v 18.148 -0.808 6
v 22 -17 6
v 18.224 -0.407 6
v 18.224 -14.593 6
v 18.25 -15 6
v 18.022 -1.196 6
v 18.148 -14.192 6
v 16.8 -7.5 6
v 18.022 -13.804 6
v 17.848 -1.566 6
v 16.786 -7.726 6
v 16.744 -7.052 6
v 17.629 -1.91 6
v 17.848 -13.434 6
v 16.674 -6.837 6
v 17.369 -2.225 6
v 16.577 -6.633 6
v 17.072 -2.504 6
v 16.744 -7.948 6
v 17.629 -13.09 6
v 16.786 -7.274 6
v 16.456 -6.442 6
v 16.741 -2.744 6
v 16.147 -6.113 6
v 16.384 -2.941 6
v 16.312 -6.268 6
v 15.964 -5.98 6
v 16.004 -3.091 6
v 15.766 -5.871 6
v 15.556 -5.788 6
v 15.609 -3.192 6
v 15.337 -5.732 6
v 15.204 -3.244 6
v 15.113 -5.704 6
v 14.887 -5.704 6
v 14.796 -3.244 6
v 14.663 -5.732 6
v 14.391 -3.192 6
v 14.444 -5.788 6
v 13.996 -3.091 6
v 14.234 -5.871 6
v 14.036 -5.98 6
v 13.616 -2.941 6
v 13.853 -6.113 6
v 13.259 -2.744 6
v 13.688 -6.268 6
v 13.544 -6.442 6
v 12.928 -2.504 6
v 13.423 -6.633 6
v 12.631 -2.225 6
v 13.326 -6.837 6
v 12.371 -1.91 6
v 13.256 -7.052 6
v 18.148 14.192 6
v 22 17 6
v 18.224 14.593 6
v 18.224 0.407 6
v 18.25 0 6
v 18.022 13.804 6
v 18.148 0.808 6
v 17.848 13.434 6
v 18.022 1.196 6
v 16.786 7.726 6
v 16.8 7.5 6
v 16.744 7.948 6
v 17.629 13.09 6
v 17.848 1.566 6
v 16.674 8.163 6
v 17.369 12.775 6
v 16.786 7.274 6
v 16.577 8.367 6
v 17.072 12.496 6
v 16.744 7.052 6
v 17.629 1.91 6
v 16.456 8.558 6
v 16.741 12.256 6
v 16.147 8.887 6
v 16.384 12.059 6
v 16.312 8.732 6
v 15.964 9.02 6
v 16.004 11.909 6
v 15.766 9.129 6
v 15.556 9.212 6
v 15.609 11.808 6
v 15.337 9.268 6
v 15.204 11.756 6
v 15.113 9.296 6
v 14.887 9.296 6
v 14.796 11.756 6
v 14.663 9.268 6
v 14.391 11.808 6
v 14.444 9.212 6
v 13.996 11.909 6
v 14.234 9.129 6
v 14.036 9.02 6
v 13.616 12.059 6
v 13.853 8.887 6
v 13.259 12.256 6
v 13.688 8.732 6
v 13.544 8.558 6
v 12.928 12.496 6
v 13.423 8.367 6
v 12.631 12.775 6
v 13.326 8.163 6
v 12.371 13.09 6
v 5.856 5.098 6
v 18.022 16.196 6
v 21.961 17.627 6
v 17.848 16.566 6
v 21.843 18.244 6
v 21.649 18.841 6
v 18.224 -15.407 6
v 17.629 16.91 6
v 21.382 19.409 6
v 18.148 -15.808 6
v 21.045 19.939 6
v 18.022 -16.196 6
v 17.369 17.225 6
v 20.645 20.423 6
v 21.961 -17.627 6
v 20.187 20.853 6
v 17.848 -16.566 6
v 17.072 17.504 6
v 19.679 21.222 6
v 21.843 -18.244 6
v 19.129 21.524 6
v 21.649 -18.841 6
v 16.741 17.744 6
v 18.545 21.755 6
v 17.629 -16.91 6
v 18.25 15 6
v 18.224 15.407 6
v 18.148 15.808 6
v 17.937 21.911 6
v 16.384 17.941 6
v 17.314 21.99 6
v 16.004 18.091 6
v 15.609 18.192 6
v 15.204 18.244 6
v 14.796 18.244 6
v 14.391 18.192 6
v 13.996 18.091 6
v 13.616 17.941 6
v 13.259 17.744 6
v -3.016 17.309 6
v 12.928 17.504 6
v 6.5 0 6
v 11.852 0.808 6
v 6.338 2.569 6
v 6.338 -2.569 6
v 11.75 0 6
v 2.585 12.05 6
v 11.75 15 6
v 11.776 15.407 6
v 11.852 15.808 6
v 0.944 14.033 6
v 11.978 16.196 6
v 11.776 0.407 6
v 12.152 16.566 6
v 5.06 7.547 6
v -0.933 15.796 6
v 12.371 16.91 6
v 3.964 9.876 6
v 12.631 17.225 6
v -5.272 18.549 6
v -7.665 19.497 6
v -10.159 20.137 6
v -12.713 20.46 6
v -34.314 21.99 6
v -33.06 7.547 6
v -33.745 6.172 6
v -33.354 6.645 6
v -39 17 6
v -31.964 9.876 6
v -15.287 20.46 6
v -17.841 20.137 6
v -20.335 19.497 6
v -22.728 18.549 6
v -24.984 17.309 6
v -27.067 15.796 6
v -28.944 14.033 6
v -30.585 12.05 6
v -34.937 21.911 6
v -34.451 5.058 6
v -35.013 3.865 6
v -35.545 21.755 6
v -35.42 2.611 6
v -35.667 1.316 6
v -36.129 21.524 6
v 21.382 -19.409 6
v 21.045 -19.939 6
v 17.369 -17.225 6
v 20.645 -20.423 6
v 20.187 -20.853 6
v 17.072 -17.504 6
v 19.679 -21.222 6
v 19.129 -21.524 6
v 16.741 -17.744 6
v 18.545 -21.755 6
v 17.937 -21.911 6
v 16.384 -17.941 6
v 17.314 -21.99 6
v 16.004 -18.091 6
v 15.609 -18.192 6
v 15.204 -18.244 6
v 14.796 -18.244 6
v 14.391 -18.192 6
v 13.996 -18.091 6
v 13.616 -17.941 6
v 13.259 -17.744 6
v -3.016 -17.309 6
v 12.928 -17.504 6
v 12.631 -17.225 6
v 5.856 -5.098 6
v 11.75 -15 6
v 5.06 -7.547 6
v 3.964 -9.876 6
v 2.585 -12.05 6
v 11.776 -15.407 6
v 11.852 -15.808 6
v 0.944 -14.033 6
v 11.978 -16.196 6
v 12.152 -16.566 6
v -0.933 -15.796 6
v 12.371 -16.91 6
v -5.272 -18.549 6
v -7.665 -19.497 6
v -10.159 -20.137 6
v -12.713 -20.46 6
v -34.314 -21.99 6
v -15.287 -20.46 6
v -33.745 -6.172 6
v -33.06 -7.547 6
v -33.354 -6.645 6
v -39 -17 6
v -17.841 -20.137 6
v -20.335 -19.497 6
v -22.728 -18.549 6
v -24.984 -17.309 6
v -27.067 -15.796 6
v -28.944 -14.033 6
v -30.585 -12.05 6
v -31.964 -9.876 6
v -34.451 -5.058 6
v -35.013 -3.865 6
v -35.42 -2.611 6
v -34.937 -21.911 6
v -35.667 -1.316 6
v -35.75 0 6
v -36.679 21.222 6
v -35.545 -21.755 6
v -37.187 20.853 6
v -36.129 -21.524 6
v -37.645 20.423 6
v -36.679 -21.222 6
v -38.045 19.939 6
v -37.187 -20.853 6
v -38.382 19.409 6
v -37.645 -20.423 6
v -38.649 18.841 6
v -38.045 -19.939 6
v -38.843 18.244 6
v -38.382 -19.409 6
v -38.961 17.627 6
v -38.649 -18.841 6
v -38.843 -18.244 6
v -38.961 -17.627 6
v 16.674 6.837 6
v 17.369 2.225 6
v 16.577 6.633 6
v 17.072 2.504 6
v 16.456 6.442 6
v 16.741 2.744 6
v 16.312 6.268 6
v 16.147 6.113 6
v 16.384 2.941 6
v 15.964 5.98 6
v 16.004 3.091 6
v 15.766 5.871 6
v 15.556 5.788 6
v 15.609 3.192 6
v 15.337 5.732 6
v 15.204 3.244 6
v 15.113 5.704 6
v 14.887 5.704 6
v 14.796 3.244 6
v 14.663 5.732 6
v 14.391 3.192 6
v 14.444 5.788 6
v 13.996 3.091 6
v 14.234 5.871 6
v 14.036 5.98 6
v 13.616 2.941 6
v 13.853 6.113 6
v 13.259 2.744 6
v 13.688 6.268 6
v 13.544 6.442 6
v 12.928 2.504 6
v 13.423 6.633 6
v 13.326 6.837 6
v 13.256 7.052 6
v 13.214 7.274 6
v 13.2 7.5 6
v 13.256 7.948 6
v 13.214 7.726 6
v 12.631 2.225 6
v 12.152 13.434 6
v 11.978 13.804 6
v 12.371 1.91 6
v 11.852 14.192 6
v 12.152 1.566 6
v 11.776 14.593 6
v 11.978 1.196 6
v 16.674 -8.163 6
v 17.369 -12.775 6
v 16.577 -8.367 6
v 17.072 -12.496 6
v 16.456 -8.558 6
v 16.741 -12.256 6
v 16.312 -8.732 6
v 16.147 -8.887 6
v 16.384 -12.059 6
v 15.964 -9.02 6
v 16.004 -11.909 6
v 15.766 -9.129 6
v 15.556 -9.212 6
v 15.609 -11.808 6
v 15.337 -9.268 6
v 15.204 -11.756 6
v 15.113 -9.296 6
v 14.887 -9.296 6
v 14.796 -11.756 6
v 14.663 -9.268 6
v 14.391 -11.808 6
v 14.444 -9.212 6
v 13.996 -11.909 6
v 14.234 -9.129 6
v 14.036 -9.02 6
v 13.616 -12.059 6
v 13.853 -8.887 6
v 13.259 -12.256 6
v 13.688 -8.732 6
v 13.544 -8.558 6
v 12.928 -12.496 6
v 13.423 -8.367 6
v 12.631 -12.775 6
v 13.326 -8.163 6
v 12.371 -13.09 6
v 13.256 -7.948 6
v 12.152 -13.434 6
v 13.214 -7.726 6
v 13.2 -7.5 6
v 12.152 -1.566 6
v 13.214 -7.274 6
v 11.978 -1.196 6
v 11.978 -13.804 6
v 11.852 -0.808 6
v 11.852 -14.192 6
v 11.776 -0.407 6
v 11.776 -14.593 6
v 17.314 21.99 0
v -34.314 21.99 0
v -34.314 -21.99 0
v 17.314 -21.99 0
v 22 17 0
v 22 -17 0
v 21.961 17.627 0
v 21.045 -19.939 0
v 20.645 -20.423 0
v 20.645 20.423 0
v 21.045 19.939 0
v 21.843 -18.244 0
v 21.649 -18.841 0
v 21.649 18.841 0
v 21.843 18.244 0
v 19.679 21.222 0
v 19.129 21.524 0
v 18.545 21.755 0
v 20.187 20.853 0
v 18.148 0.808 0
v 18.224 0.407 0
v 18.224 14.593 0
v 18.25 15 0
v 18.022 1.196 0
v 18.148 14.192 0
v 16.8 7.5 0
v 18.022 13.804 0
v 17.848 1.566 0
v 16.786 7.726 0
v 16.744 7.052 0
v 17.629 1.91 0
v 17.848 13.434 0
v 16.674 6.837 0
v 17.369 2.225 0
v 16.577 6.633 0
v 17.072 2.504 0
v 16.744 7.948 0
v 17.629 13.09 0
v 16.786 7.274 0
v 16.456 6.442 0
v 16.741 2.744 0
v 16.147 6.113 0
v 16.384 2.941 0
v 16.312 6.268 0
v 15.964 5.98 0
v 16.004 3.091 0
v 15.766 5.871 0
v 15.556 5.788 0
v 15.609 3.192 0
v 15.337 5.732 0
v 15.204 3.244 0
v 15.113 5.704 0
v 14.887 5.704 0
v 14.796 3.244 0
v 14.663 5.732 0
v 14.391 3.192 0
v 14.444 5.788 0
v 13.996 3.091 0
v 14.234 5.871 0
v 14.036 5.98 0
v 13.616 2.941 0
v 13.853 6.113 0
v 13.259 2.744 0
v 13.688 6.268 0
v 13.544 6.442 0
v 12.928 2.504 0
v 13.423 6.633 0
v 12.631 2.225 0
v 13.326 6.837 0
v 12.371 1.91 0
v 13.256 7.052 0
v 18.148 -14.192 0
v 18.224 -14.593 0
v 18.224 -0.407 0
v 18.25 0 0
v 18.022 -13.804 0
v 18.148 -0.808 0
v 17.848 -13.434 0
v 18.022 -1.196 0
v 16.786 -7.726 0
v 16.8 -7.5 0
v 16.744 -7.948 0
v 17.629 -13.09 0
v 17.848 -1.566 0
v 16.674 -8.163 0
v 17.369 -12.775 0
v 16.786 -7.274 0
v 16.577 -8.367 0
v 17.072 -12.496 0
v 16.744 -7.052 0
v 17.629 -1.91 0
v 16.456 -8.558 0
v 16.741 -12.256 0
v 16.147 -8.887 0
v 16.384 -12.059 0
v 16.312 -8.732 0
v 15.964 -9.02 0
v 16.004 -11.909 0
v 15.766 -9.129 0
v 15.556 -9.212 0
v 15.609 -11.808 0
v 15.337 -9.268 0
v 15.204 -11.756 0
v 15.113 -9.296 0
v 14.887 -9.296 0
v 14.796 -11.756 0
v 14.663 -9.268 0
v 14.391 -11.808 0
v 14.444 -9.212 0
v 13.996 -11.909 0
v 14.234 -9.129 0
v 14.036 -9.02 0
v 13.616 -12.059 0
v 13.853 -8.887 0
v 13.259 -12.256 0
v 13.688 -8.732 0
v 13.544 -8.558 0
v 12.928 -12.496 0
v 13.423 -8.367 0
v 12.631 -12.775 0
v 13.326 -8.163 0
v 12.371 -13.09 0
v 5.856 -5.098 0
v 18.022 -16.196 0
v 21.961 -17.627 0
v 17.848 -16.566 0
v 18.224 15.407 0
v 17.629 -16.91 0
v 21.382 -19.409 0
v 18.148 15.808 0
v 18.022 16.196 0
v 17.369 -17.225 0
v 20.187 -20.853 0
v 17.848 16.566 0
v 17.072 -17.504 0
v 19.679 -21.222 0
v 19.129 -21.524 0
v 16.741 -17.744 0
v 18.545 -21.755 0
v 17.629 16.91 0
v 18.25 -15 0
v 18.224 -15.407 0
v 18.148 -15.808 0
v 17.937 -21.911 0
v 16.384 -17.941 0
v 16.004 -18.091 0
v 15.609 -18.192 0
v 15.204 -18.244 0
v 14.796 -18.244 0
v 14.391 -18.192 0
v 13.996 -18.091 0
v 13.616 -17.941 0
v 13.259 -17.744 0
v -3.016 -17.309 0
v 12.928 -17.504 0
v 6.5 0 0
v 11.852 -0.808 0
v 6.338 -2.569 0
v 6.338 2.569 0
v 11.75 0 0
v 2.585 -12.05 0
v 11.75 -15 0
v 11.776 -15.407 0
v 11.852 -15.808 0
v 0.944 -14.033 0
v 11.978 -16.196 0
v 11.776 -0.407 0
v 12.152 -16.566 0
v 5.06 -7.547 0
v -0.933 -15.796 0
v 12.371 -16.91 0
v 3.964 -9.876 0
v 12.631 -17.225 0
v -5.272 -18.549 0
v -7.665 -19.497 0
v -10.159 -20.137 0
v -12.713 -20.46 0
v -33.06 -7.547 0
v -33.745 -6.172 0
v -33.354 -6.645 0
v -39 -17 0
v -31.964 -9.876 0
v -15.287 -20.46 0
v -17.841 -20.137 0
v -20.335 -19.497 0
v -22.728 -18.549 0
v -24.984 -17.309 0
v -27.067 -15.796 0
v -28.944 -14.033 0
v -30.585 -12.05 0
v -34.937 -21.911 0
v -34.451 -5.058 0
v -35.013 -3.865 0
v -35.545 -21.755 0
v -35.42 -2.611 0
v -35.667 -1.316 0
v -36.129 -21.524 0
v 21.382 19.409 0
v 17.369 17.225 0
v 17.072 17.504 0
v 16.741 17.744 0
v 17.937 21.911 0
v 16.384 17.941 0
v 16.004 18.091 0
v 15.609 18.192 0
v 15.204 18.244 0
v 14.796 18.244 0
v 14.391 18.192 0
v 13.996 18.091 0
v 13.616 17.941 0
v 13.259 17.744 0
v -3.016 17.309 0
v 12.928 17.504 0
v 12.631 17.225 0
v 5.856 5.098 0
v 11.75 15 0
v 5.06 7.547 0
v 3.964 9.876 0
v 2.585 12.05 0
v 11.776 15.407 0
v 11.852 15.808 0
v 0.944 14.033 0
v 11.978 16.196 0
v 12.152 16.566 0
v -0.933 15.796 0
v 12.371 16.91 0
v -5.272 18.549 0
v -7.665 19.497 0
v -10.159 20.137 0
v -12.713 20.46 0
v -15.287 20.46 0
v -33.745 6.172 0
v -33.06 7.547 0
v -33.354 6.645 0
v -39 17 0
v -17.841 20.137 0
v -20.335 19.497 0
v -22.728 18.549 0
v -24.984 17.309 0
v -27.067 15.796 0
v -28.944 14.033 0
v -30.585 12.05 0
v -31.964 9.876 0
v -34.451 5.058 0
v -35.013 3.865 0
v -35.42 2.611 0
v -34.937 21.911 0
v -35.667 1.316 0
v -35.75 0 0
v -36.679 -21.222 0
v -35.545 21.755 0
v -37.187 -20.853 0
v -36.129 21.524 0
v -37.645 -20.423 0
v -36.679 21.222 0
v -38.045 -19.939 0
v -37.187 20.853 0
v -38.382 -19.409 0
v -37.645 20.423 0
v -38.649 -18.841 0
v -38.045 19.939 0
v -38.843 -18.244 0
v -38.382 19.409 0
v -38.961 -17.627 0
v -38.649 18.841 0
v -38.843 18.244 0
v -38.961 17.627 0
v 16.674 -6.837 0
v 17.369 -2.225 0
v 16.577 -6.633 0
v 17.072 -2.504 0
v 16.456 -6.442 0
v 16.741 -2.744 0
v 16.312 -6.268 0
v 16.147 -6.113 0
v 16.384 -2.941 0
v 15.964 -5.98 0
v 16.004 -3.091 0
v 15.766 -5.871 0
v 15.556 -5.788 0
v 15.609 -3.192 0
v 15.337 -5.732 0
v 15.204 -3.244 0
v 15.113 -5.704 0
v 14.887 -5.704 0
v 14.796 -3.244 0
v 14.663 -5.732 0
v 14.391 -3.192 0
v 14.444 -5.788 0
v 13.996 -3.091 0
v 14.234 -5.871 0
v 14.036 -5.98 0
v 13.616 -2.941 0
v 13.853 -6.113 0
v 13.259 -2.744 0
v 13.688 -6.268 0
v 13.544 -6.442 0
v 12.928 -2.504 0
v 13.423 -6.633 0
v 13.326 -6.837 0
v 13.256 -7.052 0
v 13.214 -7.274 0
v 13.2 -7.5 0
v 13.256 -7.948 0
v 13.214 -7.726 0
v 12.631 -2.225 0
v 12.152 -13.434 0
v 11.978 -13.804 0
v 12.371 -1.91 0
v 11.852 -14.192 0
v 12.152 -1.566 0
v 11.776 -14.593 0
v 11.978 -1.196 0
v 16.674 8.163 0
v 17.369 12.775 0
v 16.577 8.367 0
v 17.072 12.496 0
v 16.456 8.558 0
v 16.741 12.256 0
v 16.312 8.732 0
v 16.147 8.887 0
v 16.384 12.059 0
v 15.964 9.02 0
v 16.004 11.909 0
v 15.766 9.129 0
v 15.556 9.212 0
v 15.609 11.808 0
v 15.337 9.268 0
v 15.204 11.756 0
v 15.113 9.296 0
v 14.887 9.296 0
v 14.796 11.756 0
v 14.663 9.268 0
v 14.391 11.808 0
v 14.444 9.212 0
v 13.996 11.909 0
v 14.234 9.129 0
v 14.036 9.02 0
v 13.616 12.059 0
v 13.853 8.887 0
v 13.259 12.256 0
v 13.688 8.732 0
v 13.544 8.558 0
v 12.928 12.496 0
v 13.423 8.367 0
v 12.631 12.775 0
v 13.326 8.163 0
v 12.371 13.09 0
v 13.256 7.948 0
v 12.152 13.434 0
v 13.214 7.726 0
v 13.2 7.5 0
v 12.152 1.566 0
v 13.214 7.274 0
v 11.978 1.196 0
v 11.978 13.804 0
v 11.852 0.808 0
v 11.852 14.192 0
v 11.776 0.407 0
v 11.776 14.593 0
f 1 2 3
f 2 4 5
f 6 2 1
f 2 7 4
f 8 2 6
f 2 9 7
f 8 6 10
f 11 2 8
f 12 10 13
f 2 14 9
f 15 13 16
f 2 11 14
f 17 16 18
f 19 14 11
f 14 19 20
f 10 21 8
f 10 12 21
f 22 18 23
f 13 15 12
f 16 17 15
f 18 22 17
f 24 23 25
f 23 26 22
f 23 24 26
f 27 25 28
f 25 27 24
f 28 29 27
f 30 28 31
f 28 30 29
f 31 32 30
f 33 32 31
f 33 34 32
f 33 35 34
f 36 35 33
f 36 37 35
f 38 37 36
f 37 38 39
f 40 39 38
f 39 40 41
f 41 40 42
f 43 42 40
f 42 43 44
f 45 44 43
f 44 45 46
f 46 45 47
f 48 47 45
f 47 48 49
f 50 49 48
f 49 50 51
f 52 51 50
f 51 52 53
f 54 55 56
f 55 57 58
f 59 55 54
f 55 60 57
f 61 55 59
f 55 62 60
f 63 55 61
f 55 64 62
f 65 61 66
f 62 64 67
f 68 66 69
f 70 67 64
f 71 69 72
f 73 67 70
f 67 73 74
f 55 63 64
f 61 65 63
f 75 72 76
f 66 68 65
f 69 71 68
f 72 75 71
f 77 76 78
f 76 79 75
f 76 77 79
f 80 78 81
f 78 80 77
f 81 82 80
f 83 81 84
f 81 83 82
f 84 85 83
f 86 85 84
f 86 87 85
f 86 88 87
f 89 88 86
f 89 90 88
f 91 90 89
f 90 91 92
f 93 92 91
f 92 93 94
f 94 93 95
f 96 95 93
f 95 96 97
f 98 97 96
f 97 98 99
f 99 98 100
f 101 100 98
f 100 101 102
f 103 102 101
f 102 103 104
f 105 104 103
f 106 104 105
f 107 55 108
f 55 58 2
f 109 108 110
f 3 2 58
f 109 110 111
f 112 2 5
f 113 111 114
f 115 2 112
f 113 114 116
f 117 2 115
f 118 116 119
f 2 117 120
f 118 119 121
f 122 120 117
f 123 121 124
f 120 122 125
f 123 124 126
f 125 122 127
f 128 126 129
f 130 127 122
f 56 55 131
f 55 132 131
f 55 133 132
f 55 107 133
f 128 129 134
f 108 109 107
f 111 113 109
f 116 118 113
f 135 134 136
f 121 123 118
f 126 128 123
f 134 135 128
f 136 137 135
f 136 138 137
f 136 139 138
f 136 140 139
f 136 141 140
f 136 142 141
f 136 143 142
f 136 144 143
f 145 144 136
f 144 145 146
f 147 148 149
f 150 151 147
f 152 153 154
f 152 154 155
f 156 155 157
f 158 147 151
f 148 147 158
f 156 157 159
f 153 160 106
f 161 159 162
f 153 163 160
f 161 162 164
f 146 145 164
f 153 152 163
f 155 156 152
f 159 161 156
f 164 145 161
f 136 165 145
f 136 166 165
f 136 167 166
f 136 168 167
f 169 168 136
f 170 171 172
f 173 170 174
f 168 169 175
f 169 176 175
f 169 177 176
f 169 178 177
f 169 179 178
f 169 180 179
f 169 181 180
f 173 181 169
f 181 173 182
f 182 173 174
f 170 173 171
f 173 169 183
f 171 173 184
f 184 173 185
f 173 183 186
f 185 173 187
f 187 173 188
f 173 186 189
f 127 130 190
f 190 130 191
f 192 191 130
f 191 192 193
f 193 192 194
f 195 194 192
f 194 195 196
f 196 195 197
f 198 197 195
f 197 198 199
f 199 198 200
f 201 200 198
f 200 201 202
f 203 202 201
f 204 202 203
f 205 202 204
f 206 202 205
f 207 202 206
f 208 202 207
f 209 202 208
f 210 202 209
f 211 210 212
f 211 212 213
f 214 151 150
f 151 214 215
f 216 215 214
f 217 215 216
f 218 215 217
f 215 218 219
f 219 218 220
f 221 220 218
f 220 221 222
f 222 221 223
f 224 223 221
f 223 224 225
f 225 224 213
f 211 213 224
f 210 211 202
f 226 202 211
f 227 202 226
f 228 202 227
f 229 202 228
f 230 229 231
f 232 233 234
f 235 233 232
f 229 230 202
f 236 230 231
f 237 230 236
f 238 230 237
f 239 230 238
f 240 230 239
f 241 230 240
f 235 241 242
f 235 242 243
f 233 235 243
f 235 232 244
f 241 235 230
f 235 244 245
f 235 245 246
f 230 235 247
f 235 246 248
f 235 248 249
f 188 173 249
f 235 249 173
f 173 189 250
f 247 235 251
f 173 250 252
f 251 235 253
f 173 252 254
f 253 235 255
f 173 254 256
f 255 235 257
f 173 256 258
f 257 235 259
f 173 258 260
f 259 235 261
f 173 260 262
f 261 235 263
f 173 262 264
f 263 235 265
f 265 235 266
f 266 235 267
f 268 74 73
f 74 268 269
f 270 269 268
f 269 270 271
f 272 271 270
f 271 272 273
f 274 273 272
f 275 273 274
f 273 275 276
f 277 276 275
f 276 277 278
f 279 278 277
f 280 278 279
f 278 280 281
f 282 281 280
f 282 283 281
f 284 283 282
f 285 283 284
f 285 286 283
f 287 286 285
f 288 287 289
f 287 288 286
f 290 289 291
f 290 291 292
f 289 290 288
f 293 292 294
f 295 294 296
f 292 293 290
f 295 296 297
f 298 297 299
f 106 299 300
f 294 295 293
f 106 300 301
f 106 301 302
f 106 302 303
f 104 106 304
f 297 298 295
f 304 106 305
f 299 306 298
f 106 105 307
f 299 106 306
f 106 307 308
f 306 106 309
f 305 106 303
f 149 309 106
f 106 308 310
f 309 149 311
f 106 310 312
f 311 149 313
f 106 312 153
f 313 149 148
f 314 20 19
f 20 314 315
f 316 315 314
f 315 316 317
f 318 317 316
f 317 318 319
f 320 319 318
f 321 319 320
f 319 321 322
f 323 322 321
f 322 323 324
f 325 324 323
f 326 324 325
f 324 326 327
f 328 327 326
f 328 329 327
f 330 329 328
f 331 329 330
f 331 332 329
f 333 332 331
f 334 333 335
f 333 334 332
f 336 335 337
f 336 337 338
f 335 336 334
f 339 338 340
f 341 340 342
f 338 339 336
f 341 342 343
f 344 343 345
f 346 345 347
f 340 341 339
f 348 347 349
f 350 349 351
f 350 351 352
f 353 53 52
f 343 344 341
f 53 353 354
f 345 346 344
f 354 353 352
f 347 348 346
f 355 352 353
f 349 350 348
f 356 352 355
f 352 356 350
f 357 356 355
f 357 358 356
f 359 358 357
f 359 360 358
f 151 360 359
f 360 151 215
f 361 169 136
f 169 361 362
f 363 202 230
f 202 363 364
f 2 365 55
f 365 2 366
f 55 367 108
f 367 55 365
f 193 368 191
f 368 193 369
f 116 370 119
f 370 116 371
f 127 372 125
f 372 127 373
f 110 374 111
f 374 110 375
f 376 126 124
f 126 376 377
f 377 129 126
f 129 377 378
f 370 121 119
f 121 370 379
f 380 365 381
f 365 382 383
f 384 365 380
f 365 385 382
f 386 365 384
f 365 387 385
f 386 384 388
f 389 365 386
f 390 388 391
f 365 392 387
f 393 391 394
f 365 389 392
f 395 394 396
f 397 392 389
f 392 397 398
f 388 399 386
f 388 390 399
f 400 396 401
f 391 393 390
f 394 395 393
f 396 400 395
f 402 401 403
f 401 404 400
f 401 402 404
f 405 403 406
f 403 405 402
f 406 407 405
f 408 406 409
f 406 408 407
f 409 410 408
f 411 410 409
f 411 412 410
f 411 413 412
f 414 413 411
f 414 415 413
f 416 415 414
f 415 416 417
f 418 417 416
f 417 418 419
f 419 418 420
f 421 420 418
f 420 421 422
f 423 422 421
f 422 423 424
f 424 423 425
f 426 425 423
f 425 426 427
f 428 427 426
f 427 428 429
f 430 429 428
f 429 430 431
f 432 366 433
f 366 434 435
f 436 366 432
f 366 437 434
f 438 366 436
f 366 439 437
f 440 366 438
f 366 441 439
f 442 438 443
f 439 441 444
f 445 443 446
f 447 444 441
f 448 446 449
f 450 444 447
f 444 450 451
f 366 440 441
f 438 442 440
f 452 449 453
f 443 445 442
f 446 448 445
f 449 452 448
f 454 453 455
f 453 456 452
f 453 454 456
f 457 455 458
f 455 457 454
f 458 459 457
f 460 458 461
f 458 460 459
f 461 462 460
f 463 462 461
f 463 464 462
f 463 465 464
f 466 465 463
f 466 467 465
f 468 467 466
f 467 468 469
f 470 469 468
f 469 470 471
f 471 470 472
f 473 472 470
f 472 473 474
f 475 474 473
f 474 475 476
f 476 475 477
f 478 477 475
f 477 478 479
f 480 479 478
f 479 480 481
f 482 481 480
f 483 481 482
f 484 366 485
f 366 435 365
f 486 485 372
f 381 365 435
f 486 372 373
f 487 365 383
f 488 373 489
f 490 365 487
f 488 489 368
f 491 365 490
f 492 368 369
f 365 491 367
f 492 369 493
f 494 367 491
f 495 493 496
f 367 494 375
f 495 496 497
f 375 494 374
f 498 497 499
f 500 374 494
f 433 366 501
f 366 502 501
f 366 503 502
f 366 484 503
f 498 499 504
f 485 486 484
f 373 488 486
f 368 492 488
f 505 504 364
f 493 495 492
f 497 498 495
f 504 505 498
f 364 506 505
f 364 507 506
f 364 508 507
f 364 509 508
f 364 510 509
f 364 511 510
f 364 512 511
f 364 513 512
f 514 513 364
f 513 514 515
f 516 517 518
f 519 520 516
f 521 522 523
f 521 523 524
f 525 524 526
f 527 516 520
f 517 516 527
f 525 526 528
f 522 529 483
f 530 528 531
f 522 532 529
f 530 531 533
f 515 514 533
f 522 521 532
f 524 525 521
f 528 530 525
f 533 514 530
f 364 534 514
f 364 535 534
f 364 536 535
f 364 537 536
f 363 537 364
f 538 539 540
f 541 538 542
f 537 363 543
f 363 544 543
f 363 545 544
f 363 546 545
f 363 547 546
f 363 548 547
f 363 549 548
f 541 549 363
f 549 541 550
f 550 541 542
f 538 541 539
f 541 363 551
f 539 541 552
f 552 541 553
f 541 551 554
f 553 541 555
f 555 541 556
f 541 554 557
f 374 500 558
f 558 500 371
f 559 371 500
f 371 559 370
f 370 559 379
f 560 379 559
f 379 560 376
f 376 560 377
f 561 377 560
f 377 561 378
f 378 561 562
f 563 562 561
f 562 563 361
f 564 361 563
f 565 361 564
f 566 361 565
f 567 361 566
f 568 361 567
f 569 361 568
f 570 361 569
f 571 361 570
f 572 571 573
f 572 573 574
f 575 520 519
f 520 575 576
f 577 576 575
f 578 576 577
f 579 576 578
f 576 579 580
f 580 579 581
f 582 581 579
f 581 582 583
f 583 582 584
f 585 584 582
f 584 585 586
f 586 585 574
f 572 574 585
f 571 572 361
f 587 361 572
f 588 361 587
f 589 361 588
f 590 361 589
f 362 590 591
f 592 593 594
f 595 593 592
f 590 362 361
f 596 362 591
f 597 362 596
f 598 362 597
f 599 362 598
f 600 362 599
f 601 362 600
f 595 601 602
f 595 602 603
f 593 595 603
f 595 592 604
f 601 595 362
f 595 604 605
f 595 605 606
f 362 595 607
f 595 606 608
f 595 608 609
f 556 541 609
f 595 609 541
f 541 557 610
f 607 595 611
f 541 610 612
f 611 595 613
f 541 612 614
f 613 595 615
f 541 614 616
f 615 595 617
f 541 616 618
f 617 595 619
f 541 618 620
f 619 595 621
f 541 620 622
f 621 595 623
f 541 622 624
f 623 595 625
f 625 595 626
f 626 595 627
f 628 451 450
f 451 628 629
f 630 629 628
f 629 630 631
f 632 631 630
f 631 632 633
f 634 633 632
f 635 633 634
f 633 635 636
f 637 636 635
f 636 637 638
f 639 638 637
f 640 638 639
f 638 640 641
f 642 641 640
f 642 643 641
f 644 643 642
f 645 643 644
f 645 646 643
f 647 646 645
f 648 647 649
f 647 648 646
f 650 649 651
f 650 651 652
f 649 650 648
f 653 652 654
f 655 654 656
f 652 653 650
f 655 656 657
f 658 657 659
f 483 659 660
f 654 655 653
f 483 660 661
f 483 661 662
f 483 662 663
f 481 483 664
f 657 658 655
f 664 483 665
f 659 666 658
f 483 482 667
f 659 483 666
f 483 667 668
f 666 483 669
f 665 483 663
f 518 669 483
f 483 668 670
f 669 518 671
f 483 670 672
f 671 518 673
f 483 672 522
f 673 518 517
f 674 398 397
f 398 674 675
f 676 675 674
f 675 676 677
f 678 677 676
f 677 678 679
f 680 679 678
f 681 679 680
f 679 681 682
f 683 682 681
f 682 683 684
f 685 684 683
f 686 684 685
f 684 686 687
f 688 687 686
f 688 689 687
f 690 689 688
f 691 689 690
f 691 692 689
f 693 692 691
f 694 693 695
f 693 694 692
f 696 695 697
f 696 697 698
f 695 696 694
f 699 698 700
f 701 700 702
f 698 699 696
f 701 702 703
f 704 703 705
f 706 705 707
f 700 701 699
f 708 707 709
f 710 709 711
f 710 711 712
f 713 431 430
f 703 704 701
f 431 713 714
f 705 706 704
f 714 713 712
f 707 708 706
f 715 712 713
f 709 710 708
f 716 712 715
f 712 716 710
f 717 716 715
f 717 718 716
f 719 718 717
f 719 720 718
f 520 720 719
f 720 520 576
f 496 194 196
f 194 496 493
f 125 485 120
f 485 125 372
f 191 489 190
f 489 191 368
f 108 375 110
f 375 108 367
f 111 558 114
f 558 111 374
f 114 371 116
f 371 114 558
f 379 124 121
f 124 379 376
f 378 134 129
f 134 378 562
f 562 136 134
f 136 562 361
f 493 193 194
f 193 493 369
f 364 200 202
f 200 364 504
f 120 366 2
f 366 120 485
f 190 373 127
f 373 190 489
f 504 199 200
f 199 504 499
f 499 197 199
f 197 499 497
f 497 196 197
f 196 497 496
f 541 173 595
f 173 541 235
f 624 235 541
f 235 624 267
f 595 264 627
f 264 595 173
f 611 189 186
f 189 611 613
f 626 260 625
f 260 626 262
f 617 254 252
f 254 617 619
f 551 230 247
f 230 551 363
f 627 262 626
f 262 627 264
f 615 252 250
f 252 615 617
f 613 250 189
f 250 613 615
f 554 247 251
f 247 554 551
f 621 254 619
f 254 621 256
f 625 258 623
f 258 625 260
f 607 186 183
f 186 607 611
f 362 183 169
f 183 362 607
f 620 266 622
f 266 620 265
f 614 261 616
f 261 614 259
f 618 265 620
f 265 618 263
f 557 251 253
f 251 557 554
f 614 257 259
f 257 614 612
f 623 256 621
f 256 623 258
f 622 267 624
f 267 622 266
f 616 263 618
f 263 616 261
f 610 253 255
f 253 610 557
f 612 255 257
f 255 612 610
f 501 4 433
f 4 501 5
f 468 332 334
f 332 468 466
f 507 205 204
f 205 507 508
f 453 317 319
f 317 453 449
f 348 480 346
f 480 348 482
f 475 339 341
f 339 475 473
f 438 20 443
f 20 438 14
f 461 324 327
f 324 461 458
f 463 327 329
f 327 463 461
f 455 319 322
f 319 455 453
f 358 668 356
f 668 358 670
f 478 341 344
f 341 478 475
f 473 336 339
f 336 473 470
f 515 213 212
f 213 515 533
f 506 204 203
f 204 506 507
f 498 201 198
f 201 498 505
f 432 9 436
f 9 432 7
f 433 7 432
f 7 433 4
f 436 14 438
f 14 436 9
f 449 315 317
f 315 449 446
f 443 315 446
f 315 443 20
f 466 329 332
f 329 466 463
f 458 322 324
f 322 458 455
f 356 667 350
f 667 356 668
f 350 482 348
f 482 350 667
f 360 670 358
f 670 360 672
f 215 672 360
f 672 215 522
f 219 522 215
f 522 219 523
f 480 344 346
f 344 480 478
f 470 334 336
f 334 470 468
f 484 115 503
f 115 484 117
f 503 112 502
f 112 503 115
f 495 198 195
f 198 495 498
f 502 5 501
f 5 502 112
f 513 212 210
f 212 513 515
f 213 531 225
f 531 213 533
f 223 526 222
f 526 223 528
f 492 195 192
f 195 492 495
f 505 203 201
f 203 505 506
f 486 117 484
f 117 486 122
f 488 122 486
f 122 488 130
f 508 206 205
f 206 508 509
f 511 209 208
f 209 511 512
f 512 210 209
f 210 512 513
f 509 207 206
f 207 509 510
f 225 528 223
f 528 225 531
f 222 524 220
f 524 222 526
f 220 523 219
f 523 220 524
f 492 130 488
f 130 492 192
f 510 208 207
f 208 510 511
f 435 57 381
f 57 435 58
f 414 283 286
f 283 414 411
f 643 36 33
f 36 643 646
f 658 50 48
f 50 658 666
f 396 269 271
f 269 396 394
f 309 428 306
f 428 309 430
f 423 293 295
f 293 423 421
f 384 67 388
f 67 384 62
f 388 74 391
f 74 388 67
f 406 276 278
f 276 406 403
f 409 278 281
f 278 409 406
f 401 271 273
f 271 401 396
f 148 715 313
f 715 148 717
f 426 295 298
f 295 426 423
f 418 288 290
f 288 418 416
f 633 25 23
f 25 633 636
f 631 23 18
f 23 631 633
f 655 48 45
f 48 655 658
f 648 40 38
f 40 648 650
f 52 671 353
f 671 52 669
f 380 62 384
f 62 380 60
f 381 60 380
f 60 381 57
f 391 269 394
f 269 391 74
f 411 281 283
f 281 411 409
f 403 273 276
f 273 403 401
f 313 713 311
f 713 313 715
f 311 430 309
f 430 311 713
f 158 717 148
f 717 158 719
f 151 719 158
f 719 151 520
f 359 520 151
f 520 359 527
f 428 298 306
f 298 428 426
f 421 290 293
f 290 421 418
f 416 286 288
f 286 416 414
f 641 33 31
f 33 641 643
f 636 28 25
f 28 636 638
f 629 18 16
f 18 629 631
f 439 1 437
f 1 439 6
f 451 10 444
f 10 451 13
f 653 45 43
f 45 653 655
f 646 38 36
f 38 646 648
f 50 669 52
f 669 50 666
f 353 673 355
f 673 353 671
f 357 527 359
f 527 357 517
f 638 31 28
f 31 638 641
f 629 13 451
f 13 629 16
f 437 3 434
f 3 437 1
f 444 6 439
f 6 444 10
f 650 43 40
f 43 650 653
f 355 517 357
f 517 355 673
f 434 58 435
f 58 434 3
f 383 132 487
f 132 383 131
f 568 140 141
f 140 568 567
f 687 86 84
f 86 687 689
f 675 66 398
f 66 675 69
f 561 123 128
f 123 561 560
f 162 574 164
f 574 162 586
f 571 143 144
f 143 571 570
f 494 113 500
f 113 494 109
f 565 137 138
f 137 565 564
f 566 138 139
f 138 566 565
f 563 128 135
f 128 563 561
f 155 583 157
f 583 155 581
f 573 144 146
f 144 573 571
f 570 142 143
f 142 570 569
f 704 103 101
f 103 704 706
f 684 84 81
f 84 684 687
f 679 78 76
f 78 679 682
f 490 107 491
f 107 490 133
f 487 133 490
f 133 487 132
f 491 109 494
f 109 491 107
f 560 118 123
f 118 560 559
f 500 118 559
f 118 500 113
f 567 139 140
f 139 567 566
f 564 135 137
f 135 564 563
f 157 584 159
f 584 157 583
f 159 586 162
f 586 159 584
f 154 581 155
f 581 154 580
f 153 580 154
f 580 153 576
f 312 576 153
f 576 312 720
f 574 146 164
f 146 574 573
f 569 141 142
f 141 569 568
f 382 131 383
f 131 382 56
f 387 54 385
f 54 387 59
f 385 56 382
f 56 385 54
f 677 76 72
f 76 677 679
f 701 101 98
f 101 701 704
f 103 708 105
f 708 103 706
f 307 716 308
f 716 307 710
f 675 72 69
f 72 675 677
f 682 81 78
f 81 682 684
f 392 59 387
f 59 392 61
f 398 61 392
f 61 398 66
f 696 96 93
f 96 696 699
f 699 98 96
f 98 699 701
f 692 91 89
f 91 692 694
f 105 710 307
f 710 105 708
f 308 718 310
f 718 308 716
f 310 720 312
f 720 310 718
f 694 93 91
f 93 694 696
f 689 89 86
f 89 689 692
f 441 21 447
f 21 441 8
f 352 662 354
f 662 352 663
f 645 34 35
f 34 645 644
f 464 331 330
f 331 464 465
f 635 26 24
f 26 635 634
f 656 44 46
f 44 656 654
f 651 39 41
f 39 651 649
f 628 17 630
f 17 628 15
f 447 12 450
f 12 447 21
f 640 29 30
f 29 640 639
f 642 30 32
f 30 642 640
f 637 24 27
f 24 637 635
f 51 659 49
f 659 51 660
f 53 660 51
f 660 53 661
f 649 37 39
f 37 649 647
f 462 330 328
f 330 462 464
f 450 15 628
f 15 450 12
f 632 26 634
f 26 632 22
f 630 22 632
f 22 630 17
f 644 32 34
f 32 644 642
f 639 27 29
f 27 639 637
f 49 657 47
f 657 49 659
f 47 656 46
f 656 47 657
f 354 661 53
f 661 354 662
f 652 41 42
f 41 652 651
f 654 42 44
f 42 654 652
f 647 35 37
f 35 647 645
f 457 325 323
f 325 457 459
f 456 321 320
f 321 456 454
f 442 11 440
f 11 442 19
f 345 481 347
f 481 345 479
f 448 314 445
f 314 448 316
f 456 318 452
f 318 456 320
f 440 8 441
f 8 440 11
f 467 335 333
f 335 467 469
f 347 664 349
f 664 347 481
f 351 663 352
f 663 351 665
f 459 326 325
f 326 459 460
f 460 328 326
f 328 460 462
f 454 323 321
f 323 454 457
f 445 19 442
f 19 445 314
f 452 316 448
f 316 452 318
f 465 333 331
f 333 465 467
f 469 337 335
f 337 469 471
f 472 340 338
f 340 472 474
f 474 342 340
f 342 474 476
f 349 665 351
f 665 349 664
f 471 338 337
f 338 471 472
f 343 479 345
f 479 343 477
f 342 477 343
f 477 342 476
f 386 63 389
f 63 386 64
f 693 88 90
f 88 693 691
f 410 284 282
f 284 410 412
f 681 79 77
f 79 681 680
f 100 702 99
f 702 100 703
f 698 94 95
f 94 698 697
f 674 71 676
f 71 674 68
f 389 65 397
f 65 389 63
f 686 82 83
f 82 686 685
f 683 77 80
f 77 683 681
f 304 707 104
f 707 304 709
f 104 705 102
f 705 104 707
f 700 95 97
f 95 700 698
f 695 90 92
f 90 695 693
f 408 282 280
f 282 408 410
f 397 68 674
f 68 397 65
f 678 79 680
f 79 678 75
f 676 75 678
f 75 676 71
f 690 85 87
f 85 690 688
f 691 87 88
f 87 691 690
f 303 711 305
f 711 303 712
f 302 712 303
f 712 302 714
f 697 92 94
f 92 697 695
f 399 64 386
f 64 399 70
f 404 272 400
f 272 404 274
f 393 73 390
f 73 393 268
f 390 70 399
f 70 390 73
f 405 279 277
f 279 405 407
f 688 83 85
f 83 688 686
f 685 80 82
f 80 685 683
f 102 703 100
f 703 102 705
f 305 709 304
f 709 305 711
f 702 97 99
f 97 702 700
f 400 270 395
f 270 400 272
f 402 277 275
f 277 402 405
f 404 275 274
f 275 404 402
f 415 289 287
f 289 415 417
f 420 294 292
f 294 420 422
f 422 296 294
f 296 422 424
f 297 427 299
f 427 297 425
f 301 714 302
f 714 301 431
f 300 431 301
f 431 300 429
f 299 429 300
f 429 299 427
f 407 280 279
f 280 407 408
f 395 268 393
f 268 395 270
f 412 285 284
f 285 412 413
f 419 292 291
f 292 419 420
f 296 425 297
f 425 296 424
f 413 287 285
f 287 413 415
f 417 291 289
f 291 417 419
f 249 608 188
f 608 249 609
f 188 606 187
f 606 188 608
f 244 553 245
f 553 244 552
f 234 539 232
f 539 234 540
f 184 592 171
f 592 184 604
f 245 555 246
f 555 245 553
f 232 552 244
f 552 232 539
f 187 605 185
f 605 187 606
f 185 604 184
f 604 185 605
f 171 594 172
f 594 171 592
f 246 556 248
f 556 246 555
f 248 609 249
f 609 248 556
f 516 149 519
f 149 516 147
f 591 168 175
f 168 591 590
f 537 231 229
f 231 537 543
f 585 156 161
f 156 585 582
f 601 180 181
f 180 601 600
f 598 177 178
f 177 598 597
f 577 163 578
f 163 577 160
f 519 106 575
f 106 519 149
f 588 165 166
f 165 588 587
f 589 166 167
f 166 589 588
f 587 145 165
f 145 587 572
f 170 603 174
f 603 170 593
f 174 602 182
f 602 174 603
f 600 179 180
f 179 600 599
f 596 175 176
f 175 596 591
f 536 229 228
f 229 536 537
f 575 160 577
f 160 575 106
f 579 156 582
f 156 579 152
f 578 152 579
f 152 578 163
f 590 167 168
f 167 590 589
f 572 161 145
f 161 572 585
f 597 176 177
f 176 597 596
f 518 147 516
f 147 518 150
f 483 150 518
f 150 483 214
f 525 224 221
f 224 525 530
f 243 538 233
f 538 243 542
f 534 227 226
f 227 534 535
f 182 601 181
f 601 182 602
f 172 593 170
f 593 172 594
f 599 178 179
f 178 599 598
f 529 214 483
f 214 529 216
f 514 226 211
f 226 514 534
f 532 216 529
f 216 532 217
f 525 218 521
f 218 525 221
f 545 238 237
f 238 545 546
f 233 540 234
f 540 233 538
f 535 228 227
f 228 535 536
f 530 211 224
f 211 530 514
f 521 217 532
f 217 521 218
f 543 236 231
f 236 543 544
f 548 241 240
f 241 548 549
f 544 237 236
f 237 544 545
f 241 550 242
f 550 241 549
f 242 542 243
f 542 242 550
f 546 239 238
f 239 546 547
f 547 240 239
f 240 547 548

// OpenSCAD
$fn = 50;


difference() {
	union() {
		hull() {
			translate(v = [-17.0000000000, 17.0000000000, 0]) {
				cylinder(h = 6, r = 5);
			}
			translate(v = [17.0000000000, 17.0000000000, 0]) {
				cylinder(h = 6, r = 5);
			}
			translate(v = [-17.0000000000, -17.0000000000, 0]) {
				cylinder(h = 6, r = 5);
			}
			translate(v = [17.0000000000, -17.0000000000, 0]) {
				cylinder(h = 6, r = 5);
			}
		}
		translate(v = [-17.0000000000, 0, 0]) {
			hull() {
				translate(v = [-17.0000000000, 17.0000000000, 0]) {
					cylinder(h = 6, r = 5);
				}
				translate(v = [17.0000000000, 17.0000000000, 0]) {
					cylinder(h = 6, r = 5);
				}
				translate(v = [-17.0000000000, -17.0000000000, 0]) {
					cylinder(h = 6, r = 5);
				}
				translate(v = [17.0000000000, -17.0000000000, 0]) {
					cylinder(h = 6, r = 5);
				}
			}
		}
	}
	union() {
		translate(v = [15.0000000000, -15.0000000000, -100.0000000000]) {
			cylinder(h = 200, r = 3.2500000000);
		}
		translate(v = [15.0000000000, 0.0000000000, -100.0000000000]) {
			cylinder(h = 200, r = 3.2500000000);
		}
		translate(v = [15.0000000000, 15.0000000000, -100.0000000000]) {
			cylinder(h = 200, r = 3.2500000000);
		}
		translate(v = [15.0000000000, -15.0000000000, -100.0000000000]) {
			cylinder(h = 200, r = 3.2500000000);
		}
		translate(v = [15.0000000000, 0.0000000000, -100.0000000000]) {
			cylinder(h = 200, r = 3.2500000000);
		}
		translate(v = [15.0000000000, 15.0000000000, -100.0000000000]) {
			cylinder(h = 200, r = 3.2500000000);
		}
		translate(v = [15.0000000000, -15.0000000000, -100.0000000000]) {
			cylinder(h = 200, r = 1.8000000000);
		}
		translate(v = [15.0000000000, -7.5000000000, -100.0000000000]) {
			cylinder(h = 200, r = 1.8000000000);
		}
		translate(v = [15.0000000000, 0.0000000000, -100.0000000000]) {
			cylinder(h = 200, r = 1.8000000000);
		}
		translate(v = [15.0000000000, 7.5000000000, -100.0000000000]) {
			cylinder(h = 200, r = 1.8000000000);
		}
		translate(v = [15.0000000000, 15.0000000000, -100.0000000000]) {
			cylinder(h = 200, r = 1.8000000000);
		}
		translate(v = [15.0000000000, -15.0000000000, -100.0000000000]) {
			cylinder(h = 200, r = 1.8000000000);
		}
		translate(v = [15.0000000000, -7.5000000000, -100.0000000000]) {
			cylinder(h = 200, r = 1.8000000000);
		}
		translate(v = [15.0000000000, 0.0000000000, -100.0000000000]) {
			cylinder(h = 200, r = 1.8000000000);
		}
		translate(v = [15.0000000000, 7.5000000000, -100.0000000000]) {
			cylinder(h = 200, r = 1.8000000000);
		}
		translate(v = [15.0000000000, 15.0000000000, -100.0000000000]) {
			cylinder(h = 200, r = 1.8000000000);
		}
		translate(v = [15.0000000000, -15.0000000000, -100.0000000000]) {
			cylinder(h = 200, r = 1.8000000000);
		}
		translate(v = [15.0000000000, -7.5000000000, -100.0000000000]) {
			cylinder(h = 200, r = 1.8000000000);
		}
		translate(v = [15.0000000000, 0.0000000000, -100.0000000000]) {
			cylinder(h = 200, r = 1.8000000000);
		}
		translate(v = [15.0000000000, 7.5000000000, -100.0000000000]) {
			cylinder(h = 200, r = 1.8000000000);
		}
		translate(v = [15.0000000000, 15.0000000000, -100.0000000000]) {
			cylinder(h = 200, r = 1.8000000000);
		}
		translate(v = [-21.5000000000, 0, 0]) {
			hull() {
				translate(v = [-3.7500000000, 0.0000000000, 0]) {
					cylinder(h = 6, r = 10.5000000000);
				}
				translate(v = [3.7500000000, 0.0000000000, 0]) {
					cylinder(h = 6, r = 10.5000000000);
				}
				translate(v = [-3.7500000000, -0.0000000000, 0]) {
					cylinder(h = 6, r = 10.5000000000);
				}
				translate(v = [3.7500000000, -0.0000000000, 0]) {
					cylinder(h = 6, r = 10.5000000000);
				}
			}
		}
		translate(v = [-14.0000000000, 0, 0.0000000000]) {
			cylinder(h = 6, r = 20.5000000000);
		}
	}
}
